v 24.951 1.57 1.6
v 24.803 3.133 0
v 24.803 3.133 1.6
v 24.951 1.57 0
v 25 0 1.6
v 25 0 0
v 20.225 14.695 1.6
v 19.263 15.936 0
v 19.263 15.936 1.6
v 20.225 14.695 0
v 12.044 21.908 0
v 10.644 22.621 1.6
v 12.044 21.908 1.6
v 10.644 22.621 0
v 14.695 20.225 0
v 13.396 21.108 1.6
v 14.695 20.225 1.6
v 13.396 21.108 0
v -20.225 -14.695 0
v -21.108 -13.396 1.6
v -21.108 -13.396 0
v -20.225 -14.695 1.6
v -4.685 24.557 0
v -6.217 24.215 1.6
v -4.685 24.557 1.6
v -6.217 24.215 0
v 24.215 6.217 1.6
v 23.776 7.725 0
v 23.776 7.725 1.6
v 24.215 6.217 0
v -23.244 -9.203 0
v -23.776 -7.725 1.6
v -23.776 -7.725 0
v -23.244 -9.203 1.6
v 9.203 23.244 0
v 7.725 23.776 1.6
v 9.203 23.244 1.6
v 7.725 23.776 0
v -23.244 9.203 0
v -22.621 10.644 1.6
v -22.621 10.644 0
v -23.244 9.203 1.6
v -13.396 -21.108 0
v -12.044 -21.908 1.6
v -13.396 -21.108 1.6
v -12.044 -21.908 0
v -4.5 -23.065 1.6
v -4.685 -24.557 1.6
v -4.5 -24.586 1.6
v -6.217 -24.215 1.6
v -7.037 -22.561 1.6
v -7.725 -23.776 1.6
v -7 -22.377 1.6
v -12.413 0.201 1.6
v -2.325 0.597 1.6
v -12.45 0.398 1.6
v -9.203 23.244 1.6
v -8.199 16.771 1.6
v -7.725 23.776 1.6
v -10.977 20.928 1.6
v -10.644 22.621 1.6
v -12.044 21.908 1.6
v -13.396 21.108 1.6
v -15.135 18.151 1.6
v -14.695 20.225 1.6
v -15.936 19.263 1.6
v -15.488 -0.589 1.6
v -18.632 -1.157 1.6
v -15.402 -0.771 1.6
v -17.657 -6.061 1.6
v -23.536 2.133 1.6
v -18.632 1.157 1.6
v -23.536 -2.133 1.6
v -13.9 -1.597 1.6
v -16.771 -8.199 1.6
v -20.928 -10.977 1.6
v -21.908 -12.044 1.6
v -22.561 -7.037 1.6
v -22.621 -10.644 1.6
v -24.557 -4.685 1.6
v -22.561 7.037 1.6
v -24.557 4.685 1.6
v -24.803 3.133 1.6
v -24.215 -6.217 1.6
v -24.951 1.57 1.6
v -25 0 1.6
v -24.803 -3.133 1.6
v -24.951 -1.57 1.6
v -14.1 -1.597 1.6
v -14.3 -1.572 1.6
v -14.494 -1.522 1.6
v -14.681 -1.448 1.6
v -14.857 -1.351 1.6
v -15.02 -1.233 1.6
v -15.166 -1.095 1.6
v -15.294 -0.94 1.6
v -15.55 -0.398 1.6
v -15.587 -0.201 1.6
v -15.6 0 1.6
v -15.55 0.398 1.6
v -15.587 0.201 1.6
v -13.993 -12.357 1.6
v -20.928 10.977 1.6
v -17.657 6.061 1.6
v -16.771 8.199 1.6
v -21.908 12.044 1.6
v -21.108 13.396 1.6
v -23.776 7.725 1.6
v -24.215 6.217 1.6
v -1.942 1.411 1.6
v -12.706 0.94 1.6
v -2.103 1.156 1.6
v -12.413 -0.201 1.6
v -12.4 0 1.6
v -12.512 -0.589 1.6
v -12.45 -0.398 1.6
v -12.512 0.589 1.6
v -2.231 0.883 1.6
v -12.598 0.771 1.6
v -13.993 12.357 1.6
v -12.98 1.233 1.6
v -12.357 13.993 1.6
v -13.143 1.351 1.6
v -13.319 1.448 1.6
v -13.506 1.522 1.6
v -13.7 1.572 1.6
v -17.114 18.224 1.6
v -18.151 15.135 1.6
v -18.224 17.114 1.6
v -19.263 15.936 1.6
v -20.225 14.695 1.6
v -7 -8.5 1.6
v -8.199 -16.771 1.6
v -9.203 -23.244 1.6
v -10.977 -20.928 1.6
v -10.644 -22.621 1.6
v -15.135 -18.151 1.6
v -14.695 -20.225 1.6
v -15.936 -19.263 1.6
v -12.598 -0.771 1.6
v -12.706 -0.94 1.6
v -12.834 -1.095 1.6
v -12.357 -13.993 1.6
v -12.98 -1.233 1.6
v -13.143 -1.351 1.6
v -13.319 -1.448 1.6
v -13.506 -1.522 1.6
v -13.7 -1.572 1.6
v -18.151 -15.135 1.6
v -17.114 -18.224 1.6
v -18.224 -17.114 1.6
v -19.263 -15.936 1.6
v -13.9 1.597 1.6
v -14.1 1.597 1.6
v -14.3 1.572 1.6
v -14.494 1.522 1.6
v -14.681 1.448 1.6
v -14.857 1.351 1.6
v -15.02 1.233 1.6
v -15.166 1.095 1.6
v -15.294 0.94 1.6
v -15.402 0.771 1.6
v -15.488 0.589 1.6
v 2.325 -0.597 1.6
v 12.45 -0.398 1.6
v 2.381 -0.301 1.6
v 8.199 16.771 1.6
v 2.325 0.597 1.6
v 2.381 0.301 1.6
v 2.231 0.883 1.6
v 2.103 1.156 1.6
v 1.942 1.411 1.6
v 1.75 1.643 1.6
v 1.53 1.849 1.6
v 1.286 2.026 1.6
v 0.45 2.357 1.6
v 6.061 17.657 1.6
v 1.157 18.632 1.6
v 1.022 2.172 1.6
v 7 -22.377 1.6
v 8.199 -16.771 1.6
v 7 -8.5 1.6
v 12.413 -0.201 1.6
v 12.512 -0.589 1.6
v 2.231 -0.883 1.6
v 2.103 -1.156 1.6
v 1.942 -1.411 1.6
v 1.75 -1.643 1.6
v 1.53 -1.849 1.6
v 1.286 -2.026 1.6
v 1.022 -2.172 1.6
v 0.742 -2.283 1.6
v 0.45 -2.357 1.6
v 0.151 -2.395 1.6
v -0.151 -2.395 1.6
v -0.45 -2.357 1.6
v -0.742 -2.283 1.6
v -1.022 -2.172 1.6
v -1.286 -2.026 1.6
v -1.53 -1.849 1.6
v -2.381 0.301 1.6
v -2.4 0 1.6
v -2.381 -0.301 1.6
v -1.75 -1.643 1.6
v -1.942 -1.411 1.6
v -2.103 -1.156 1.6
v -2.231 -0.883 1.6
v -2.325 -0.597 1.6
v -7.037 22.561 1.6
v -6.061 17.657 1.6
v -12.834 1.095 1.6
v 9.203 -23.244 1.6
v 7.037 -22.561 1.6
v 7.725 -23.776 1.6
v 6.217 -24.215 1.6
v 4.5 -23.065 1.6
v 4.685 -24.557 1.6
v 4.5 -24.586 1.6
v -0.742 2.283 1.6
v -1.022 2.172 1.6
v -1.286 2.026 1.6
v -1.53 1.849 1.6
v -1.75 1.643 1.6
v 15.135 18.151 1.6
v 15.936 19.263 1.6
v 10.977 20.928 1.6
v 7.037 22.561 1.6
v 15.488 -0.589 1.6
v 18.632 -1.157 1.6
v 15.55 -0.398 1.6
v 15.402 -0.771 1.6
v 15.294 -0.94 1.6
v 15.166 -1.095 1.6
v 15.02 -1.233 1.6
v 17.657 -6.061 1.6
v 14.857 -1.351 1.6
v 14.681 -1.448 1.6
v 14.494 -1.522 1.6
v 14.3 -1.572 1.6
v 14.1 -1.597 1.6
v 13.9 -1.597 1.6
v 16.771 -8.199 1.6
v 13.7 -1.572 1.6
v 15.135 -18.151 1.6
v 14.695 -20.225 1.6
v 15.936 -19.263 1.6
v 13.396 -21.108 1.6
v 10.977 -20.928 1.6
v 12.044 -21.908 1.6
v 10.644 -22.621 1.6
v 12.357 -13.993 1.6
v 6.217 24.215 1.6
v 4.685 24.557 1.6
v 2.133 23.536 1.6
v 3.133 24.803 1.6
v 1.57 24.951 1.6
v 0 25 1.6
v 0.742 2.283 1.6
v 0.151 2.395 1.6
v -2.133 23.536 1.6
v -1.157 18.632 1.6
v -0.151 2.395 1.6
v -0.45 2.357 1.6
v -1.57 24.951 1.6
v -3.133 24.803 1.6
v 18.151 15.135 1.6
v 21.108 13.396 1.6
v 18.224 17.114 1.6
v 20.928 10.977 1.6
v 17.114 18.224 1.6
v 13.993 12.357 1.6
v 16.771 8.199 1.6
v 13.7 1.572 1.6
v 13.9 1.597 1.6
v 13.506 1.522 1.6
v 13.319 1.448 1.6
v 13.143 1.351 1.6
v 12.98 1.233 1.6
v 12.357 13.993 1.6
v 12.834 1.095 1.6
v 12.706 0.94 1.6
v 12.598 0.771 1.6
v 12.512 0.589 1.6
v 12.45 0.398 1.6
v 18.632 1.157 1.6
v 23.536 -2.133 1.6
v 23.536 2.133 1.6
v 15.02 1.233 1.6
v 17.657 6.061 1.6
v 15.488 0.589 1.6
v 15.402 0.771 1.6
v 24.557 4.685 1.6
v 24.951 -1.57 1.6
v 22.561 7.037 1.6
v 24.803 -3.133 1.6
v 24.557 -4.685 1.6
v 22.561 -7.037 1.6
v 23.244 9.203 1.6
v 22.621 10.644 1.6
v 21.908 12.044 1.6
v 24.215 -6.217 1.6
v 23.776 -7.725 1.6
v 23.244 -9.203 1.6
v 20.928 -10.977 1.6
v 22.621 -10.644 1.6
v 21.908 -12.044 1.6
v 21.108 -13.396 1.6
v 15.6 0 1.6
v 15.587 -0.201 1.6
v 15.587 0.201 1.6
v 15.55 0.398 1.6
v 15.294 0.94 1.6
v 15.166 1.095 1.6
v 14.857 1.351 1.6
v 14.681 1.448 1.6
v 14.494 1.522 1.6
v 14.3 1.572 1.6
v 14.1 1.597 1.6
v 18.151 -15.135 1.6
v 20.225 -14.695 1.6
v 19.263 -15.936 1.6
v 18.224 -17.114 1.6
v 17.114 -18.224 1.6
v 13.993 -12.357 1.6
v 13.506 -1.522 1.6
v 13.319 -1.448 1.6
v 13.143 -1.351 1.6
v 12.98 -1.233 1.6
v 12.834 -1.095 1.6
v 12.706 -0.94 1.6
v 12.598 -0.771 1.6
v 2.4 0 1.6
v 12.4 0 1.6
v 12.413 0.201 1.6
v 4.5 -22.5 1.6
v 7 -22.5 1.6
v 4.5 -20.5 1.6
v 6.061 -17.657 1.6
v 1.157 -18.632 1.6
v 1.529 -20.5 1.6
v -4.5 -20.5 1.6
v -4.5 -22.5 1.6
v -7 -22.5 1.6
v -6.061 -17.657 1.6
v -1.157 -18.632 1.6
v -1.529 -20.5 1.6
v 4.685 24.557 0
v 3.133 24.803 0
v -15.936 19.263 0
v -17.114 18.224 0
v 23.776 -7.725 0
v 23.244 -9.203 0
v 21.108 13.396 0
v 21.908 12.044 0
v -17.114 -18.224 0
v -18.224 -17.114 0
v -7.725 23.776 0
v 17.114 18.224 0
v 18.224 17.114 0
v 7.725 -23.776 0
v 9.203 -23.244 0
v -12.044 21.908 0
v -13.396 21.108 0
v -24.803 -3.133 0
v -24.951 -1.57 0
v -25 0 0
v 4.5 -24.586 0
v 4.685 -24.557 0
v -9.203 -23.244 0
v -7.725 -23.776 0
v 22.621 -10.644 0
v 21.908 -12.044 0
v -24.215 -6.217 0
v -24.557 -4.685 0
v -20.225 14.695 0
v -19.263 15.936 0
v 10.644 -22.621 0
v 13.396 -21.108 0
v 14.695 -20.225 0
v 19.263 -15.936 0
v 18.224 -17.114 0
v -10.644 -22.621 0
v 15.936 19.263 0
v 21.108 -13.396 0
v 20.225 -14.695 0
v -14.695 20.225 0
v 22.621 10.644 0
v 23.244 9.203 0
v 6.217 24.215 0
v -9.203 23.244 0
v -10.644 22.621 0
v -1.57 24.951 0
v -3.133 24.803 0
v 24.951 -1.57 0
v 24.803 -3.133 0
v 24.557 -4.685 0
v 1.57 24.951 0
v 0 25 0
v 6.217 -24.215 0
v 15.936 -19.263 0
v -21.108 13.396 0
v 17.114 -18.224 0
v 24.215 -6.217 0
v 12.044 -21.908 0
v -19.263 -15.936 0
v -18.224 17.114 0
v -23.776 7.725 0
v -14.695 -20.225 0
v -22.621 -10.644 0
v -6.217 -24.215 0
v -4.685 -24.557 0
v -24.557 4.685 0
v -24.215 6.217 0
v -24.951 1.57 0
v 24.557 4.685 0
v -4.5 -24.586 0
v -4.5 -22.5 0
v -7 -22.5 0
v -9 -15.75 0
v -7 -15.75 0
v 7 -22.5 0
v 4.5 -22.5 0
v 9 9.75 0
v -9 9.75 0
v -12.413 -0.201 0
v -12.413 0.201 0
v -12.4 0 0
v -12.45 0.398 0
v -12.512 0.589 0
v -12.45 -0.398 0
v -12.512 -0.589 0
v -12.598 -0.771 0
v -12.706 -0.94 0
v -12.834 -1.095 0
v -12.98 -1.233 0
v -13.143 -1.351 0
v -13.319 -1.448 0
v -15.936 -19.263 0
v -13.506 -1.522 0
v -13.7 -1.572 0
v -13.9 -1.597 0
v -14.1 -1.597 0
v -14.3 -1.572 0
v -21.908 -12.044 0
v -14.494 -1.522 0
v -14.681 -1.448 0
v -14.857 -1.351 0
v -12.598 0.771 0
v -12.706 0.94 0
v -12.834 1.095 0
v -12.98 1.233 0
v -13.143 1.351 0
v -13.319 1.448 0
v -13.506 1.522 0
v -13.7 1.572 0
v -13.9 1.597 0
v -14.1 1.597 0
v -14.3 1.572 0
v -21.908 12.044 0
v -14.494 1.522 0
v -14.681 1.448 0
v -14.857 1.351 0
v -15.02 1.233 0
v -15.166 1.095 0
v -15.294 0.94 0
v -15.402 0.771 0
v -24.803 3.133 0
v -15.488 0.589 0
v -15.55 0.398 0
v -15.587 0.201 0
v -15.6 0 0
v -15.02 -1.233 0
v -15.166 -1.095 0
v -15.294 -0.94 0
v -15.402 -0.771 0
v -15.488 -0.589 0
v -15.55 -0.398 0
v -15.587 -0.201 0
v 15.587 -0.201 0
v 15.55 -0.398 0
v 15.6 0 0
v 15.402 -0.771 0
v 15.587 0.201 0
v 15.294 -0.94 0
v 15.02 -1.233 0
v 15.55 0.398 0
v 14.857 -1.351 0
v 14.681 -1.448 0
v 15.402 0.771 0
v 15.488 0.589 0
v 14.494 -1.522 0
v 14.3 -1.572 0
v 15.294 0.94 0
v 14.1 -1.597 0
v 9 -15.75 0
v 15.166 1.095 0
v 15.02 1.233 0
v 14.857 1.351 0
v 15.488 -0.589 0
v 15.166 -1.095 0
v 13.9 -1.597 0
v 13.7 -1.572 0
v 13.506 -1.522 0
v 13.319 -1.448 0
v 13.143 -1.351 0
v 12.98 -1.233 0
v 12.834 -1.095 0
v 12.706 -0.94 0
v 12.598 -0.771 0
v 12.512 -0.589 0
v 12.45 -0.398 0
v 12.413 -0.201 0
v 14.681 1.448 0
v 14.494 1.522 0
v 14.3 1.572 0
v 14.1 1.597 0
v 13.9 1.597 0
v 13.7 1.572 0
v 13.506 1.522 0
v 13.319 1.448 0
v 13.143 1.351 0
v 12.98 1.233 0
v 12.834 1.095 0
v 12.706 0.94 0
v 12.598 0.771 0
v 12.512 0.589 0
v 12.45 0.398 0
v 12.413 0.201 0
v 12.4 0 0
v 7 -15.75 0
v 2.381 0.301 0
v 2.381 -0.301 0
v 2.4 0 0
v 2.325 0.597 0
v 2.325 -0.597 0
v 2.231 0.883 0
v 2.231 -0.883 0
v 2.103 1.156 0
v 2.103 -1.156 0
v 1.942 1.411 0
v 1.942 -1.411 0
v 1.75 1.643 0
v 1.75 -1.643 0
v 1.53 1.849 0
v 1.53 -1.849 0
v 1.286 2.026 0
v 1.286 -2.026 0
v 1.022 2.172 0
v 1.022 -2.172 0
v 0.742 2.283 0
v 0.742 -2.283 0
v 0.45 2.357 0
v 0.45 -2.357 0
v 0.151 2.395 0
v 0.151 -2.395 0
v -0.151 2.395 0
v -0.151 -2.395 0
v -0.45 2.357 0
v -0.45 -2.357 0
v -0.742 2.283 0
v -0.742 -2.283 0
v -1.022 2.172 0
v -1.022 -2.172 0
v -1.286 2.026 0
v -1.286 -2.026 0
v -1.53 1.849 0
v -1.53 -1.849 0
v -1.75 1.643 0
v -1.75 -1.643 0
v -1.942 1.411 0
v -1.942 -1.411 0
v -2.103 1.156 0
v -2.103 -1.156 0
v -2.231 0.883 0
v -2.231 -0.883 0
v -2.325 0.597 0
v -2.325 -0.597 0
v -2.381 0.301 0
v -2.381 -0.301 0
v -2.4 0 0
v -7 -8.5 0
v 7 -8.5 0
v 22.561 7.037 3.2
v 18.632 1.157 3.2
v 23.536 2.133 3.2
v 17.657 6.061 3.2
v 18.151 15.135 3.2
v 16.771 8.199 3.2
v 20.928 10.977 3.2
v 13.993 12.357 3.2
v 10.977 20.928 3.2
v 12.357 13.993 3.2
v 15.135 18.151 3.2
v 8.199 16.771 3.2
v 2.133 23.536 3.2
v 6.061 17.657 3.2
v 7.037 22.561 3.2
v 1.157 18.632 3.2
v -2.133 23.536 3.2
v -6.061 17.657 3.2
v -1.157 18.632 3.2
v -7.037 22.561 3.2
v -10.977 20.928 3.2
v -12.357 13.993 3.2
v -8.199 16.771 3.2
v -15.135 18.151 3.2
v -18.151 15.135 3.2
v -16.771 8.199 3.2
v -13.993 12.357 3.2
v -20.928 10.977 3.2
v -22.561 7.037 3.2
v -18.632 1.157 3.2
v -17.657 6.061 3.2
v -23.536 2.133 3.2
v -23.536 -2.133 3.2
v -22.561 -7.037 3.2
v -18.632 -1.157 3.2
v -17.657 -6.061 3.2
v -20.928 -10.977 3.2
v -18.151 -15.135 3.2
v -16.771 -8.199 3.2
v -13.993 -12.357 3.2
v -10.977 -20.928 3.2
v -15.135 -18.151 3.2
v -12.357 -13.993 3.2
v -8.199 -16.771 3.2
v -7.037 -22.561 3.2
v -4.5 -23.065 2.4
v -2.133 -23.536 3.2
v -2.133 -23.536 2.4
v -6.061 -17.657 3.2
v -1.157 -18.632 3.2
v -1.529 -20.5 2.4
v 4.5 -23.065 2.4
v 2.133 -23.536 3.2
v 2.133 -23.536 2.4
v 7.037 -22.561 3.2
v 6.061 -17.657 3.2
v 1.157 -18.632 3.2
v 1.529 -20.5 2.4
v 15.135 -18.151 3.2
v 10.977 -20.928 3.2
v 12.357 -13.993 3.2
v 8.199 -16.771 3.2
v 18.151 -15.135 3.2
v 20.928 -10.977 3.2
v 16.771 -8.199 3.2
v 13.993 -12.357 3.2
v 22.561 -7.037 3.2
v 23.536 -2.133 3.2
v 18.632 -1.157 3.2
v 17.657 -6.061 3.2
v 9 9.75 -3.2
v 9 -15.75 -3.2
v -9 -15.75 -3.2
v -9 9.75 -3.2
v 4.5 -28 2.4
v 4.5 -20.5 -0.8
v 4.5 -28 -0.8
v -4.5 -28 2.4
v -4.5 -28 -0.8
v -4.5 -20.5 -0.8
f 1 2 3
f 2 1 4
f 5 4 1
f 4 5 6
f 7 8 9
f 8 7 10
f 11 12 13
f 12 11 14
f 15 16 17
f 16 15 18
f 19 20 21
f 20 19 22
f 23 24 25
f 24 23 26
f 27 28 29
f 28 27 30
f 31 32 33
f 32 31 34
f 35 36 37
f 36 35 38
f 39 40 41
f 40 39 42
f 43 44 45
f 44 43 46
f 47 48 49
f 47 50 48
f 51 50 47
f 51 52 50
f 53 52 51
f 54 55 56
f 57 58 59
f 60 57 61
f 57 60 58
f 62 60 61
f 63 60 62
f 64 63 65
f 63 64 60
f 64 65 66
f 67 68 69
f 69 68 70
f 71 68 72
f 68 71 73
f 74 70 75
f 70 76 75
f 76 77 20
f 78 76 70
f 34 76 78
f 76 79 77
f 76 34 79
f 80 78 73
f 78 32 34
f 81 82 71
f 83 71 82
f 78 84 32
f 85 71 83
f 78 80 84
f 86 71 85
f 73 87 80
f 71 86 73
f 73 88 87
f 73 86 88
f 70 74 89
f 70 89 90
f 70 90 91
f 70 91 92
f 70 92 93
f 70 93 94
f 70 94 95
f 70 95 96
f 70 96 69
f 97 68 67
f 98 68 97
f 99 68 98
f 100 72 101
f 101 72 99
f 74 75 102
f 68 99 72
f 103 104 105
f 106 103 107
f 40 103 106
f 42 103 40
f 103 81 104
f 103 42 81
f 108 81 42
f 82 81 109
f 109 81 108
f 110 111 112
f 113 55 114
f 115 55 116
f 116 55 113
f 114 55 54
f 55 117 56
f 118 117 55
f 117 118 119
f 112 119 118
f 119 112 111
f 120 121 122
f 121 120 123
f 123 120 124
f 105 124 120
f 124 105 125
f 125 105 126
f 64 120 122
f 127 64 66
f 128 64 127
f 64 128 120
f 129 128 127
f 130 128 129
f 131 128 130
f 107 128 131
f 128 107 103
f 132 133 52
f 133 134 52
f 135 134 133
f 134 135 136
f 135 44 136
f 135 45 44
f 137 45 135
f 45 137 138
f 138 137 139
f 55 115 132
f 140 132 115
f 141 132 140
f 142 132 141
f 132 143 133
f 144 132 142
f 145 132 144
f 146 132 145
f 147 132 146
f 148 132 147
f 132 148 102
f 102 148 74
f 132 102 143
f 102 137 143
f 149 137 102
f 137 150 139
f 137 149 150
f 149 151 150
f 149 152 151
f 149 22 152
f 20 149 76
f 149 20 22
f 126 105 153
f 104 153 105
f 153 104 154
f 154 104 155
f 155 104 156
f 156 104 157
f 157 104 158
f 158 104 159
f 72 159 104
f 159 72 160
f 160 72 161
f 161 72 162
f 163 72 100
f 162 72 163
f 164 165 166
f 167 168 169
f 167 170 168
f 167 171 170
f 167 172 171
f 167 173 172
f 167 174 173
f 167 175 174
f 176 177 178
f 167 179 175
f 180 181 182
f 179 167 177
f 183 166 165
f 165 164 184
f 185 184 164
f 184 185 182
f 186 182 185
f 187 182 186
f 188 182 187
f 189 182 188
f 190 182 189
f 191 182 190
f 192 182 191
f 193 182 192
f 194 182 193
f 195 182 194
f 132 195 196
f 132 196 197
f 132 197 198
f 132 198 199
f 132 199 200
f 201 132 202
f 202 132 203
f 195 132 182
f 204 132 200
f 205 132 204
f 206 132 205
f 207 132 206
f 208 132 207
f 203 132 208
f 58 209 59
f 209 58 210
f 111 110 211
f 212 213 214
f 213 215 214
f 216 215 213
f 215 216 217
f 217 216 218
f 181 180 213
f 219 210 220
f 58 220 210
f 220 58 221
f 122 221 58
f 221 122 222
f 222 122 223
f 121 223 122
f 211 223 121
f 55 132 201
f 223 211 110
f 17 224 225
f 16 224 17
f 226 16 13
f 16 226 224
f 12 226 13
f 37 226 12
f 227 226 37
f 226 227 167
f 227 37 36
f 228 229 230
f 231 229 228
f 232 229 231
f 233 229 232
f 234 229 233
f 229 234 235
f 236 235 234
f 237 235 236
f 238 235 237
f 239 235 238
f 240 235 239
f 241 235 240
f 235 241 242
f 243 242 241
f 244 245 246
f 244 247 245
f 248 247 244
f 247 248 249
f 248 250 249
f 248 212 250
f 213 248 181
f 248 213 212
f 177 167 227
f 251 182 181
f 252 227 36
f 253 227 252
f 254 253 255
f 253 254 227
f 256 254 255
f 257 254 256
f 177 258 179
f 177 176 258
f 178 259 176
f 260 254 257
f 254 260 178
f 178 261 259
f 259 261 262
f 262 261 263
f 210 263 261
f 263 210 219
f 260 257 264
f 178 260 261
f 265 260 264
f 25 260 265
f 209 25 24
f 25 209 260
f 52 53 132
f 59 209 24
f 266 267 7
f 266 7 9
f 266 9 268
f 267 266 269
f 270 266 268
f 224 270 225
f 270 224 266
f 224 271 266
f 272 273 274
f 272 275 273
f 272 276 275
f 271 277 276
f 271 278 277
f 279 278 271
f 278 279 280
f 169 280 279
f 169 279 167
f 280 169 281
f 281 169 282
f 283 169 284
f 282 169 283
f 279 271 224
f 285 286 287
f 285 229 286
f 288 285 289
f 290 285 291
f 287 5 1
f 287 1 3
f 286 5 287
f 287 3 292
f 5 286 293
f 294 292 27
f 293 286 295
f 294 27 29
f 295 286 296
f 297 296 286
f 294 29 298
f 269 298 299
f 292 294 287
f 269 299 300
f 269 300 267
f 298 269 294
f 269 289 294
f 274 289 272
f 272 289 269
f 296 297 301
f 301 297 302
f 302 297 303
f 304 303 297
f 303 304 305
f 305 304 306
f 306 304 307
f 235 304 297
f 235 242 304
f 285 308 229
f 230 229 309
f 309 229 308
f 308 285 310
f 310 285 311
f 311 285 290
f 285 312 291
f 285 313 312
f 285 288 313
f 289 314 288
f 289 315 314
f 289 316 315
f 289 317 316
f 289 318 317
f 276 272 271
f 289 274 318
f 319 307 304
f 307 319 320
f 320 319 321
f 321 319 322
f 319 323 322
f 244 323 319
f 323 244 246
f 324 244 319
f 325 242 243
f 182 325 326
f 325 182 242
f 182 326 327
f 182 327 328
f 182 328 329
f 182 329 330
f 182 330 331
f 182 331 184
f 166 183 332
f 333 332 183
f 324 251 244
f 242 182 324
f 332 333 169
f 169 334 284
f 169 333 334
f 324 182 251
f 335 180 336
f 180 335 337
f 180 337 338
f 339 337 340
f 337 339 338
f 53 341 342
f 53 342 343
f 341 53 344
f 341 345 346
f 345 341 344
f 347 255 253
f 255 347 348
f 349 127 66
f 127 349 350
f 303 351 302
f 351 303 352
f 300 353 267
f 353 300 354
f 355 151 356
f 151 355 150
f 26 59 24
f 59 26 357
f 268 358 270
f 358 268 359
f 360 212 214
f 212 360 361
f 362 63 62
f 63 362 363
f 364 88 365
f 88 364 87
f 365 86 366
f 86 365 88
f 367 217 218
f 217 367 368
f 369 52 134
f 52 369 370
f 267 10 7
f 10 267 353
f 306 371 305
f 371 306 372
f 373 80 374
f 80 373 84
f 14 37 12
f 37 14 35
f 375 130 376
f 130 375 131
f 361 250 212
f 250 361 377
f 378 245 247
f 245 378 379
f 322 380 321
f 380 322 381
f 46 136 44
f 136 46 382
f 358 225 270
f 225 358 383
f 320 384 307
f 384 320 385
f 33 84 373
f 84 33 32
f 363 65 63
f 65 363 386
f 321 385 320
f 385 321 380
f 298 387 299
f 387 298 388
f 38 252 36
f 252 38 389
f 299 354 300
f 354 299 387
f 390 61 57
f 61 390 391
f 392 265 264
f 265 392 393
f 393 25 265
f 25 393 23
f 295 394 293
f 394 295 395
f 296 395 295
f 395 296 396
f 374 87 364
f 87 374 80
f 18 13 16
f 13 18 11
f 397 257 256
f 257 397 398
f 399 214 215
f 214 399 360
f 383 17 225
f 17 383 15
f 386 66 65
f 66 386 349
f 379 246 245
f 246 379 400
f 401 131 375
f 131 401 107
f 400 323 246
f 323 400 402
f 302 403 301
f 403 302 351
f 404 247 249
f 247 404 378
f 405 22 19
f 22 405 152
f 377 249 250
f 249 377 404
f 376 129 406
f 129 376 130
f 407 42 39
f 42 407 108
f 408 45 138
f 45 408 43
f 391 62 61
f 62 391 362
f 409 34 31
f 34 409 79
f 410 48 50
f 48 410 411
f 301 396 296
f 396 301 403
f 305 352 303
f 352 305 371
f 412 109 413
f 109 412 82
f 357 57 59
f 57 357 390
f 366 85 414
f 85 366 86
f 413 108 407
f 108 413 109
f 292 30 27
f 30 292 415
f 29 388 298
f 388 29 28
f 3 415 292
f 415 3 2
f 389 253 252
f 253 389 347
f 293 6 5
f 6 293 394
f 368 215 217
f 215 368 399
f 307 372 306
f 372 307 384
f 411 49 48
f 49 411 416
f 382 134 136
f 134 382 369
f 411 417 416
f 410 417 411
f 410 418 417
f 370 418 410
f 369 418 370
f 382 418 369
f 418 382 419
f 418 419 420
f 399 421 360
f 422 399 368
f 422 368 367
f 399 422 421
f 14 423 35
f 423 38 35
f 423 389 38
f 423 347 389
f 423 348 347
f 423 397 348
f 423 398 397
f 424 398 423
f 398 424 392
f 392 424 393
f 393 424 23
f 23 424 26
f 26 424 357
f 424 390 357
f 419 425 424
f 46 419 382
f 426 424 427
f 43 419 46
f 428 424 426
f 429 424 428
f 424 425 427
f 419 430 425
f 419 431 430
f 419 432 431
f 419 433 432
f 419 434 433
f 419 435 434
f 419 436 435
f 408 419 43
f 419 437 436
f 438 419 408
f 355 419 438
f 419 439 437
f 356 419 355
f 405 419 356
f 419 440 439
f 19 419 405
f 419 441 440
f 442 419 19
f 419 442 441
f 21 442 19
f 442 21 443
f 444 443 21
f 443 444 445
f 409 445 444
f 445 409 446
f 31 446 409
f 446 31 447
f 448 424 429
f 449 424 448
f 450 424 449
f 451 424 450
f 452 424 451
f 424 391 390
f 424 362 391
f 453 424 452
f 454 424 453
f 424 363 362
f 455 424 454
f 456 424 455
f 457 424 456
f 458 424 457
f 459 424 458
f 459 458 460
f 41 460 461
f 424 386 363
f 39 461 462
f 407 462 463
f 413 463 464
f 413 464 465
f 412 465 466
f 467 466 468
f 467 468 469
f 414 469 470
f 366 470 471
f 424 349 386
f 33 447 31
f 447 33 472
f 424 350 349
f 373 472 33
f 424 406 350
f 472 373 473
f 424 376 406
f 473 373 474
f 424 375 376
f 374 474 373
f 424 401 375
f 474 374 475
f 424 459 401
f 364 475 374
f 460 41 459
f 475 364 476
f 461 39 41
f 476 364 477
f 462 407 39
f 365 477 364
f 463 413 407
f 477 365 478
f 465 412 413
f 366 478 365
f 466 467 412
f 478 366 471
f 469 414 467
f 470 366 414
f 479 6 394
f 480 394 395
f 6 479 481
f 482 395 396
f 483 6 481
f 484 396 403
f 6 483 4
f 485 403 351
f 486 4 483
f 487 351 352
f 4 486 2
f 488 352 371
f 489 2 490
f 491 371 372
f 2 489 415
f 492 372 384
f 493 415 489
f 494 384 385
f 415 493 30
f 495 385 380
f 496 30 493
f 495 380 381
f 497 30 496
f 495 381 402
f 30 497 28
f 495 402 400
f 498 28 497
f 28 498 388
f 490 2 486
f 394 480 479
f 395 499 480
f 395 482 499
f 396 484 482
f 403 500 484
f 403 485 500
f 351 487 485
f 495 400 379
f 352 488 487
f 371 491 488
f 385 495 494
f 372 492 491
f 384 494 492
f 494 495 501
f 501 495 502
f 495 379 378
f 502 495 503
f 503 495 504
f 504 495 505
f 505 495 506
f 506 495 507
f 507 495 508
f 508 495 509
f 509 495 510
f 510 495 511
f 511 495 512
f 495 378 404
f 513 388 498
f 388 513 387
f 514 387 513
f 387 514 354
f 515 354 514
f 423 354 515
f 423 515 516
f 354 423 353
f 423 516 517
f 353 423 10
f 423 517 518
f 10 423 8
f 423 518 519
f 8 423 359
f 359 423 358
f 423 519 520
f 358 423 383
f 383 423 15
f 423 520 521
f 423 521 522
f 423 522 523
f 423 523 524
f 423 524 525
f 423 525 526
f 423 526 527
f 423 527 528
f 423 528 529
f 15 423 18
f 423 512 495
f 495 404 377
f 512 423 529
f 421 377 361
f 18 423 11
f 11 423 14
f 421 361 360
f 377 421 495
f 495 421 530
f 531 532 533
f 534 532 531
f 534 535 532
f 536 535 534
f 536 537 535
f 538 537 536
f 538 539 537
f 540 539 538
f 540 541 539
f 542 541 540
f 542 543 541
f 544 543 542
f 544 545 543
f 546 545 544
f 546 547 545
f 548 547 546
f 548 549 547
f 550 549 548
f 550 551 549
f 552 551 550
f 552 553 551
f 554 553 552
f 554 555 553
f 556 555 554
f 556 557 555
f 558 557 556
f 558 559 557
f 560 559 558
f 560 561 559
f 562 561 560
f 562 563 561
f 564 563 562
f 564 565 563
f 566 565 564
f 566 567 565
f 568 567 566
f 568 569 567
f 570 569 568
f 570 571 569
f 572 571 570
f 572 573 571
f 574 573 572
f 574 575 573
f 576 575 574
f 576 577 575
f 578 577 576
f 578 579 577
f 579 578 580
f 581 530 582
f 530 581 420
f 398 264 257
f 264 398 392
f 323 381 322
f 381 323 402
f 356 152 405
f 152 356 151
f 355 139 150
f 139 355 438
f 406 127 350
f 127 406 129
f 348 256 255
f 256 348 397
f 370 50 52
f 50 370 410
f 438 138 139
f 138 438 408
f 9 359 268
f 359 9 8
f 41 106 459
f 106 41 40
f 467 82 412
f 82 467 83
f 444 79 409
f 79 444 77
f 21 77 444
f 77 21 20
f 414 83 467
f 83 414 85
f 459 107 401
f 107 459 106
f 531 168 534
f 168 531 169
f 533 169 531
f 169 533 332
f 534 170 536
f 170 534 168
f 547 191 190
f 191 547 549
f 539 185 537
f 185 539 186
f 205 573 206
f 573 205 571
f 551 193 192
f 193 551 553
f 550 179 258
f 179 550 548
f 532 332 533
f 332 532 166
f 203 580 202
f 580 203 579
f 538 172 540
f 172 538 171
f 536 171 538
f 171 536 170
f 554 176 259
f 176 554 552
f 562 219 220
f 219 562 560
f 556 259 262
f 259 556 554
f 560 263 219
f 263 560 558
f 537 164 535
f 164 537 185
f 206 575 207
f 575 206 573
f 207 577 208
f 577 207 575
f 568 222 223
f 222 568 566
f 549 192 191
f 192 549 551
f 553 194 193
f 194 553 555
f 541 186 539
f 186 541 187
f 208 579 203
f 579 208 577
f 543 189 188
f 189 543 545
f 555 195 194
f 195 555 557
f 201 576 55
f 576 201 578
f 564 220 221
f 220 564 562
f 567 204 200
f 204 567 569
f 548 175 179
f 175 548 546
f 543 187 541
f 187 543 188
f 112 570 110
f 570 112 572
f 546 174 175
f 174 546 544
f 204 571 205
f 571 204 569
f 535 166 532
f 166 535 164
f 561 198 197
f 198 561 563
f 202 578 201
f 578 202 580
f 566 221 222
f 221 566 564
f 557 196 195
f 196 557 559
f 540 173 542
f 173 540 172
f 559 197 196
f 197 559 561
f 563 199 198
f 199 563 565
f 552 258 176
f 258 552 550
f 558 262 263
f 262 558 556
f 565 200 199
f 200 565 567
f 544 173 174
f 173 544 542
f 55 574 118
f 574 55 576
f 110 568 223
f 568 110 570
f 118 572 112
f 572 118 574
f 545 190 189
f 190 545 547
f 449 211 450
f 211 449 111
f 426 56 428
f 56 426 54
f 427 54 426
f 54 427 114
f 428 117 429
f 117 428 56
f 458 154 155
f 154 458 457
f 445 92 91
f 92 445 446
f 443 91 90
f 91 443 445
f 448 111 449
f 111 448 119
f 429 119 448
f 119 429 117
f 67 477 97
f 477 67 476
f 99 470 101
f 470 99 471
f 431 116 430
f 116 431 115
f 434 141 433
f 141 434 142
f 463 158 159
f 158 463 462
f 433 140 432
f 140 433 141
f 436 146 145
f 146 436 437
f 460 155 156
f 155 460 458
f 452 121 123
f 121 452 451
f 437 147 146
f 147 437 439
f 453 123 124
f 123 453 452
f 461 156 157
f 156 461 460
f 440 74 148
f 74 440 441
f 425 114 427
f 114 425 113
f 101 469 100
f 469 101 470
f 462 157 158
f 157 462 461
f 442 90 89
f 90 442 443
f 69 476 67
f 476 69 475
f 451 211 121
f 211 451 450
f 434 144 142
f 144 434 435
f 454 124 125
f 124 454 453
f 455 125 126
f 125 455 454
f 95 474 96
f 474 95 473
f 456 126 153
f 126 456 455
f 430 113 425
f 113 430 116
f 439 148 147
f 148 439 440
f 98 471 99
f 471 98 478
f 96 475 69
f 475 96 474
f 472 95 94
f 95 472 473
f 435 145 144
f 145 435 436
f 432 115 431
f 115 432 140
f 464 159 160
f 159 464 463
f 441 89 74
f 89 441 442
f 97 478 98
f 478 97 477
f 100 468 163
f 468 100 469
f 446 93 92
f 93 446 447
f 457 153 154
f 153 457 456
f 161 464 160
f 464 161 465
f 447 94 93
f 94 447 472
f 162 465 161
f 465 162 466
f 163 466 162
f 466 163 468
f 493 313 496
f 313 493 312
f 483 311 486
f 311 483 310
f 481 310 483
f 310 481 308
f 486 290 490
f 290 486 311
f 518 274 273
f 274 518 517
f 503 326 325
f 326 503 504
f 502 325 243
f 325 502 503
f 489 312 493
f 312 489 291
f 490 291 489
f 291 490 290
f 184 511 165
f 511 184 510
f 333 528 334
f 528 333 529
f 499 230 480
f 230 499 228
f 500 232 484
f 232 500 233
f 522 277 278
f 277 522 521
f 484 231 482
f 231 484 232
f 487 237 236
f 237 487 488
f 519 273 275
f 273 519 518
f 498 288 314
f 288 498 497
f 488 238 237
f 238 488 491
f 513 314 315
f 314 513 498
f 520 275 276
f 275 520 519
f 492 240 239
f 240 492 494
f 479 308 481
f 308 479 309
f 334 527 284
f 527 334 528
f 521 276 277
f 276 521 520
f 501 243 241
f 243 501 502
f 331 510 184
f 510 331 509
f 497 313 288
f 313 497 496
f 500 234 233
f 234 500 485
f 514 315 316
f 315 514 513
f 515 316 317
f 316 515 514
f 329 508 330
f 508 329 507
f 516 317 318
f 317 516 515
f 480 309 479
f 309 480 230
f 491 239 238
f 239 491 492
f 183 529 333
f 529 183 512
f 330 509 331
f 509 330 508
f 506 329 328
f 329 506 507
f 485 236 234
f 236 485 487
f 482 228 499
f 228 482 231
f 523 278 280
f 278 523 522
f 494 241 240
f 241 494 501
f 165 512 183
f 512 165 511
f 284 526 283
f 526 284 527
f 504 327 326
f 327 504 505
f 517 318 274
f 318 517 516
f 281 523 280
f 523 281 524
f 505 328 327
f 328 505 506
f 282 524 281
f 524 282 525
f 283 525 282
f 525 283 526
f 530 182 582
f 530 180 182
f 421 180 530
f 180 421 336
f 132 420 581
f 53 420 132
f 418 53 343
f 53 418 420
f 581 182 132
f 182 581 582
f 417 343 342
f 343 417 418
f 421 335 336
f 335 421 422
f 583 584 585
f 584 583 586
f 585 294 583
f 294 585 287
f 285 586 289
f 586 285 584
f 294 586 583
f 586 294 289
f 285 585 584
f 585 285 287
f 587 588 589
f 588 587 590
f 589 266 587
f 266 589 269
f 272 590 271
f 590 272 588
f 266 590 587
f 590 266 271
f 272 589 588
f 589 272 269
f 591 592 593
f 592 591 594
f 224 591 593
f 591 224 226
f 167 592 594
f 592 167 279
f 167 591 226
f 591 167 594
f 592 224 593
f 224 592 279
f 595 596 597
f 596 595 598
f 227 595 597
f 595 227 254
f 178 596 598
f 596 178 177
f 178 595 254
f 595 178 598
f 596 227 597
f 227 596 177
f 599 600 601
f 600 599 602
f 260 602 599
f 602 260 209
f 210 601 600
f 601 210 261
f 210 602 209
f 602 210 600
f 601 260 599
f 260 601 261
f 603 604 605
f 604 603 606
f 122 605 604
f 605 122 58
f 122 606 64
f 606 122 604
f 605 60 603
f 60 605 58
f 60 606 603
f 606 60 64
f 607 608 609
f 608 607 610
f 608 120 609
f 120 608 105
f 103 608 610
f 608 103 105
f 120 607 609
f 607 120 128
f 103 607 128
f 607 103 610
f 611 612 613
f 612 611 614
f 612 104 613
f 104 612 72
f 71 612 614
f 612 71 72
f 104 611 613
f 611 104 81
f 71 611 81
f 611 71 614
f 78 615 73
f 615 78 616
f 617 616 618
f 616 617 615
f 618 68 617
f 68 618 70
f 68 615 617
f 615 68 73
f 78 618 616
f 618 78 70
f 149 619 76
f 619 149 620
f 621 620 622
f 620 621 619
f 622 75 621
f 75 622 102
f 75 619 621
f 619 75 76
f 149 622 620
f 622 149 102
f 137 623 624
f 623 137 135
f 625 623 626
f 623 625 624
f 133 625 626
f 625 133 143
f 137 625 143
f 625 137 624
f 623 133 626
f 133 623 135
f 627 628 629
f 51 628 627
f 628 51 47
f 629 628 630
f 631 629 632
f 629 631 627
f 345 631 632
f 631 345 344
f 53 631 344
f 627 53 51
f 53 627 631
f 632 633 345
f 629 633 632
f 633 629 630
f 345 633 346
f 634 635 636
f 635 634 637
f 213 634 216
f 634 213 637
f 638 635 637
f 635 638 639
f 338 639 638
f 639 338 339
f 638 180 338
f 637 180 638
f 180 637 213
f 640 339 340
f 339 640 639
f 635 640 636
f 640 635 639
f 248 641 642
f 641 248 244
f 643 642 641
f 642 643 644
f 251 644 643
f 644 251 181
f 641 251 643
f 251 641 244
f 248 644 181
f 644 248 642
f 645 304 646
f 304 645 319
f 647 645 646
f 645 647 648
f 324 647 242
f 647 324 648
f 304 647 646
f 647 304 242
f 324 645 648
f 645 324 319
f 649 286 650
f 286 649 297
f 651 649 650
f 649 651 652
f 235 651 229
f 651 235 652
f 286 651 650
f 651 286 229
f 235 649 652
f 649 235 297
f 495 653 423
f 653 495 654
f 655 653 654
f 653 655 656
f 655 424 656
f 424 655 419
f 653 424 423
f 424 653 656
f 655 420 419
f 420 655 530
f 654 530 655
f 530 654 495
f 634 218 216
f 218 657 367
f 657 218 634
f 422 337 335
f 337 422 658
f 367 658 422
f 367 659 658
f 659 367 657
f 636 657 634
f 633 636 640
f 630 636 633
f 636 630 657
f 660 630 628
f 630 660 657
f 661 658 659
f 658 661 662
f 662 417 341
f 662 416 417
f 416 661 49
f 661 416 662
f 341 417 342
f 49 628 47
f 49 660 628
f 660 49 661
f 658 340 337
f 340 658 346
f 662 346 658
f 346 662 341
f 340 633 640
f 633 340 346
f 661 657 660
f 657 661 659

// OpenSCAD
// Smart Lamp 50mm PCB Physical Mockup
// Render with OpenSCAD (F6) and Export to STL

// --- PCB Dimensions ---
pcb_diameter = 50;
pcb_thickness = 1.6;

// --- Mounting Holes ---
// 3 holes: one dead center, and two on the sides spaced 28mm apart
outer_hole_diameter = 3.2; // M3 clearance for BT3 screws
center_hole_diameter = 4.8;
hole_distance_from_center = 14; // 28mm apart = 14mm radius

// --- Keyhole Cutout Dimensions ---
cutout_inner_width = 14; // Wide enough for USB-C plastic strain relief
cutout_inner_depth = 14; // Deep enough for the plastic head
cutout_inner_y = -22.5; // Placed inward from the edge
cutout_slot_width = 5; // Narrow slot for the wire to pass through
cutout_slot_depth = 10; // Connects the inner hole to the perimeter
cutout_slot_y = -25; // Reaches the outer edge

// --- ESP32-C6-WROOM-1 Module (Bottom Layer) ---
esp_width = 18;
esp_length = 25.5;
esp_height = 3.2;
esp_offset_y = -3; 

// --- USB-C Receptacle (Mid-Mount) ---
usb_width = 9;
usb_length = 7.5; 
usb_height = 3.2;
// Mid-mount means it straddles the Z-axis center of the PCB
usb_z_offset = (pcb_thickness / 2) - (usb_height / 2); 

// --- SK6812 5050 LEDs (Top Layer) ---
led_count = 16;
led_size = 5.0; 
led_height = 1.6;
led_radius = 21; // Distance from center to LED center

// --- Component Assembly ---
union() {
    
    // 1. The Main FR4 PCB Body with Holes and Keyhole Cutout
    difference() {
        // PCB Base
        color("darkgreen")
        cylinder(h=pcb_thickness, d=pcb_diameter, $fn=100);
        
        // Center Mounting Hole
        translate([0, 0, -1])
        cylinder(h=pcb_thickness+2, d=center_hole_diameter, $fn=50);

        // Mounting Hole 2 (Left)
        translate([-hole_distance_from_center, 0, -1])
        cylinder(h=pcb_thickness+2, d=outer_hole_diameter, $fn=50);
        
        // Mounting Hole 3 (Right)
        translate([hole_distance_from_center, 0, -1])
        cylinder(h=pcb_thickness+2, d=outer_hole_diameter, $fn=50);
        
        // Keyhole Cutout - Inner Wide Hole (For Strain Relief)
        translate([-cutout_inner_width/2, cutout_inner_y, -1])
        cube([cutout_inner_width, cutout_inner_depth, pcb_thickness+2]);
        
        // Keyhole Cutout - Outer Narrow Slot (For Wire)
        translate([-cutout_slot_width/2, cutout_slot_y, -1])
        cube([cutout_slot_width, cutout_slot_depth, pcb_thickness+2]);
    }
    
    // 2. ESP32-C6 Module (Placed on BOTTOM)
    color("silver")
    translate([-esp_width/2, esp_offset_y - esp_length/2, -esp_height])
    cube([esp_width, esp_length, esp_height]);
    
    // 3. USB-C Port (Mid-Mounted inside the cutout)
    // Using a brighter distinct color so it stands out against the PCB
    color("LightGray")
    // Positioned at the very edge of the inner cutout, straddling the Z-axis
    translate([-usb_width/2, cutout_inner_y - usb_length + 2, usb_z_offset])
    cube([usb_width, usb_length, usb_height]);
    
    // 4. The 16x SK6812 LEDs (Placed in a continuous ring)
    // The keyhole slot is only 5mm wide, which fits perfectly between the LEDs!
    color("white")
    for (i = [0 : led_count - 1]) {
        // Calculate angle for each LED (360 / 16 = 22.5 degrees)
        // Offset by 11.25 degrees so the slot perfectly splits the gap between two LEDs at the bottom
        angle = (i * (360 / led_count)) + 11.25;
        
        x_pos = led_radius * cos(angle);
        y_pos = led_radius * sin(angle);
        
        translate([x_pos, y_pos, pcb_thickness])
        rotate([0, 0, angle])
        translate([-led_size/2, -led_size/2, 0])
        cube([led_size, led_size, led_height]);
    }
}
